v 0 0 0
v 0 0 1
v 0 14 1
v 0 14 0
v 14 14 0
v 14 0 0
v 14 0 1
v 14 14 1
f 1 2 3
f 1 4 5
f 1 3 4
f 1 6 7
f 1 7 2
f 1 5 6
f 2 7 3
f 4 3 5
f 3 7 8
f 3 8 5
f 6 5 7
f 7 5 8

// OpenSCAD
/* Warning, this is a very basic generator with a lot of approximation 
input data : [TQFP, XCB, 14x14x1mm, 128, , A, C04-21547A]
generated by com.zoubworld.electronics.cad.model3d.Basic
Date : Sun Feb 15 10:50:49 CET 2026
*/

//body
color("black")
translate([0,0,0])
cube([14.0,14.0,1.0], center=false);
